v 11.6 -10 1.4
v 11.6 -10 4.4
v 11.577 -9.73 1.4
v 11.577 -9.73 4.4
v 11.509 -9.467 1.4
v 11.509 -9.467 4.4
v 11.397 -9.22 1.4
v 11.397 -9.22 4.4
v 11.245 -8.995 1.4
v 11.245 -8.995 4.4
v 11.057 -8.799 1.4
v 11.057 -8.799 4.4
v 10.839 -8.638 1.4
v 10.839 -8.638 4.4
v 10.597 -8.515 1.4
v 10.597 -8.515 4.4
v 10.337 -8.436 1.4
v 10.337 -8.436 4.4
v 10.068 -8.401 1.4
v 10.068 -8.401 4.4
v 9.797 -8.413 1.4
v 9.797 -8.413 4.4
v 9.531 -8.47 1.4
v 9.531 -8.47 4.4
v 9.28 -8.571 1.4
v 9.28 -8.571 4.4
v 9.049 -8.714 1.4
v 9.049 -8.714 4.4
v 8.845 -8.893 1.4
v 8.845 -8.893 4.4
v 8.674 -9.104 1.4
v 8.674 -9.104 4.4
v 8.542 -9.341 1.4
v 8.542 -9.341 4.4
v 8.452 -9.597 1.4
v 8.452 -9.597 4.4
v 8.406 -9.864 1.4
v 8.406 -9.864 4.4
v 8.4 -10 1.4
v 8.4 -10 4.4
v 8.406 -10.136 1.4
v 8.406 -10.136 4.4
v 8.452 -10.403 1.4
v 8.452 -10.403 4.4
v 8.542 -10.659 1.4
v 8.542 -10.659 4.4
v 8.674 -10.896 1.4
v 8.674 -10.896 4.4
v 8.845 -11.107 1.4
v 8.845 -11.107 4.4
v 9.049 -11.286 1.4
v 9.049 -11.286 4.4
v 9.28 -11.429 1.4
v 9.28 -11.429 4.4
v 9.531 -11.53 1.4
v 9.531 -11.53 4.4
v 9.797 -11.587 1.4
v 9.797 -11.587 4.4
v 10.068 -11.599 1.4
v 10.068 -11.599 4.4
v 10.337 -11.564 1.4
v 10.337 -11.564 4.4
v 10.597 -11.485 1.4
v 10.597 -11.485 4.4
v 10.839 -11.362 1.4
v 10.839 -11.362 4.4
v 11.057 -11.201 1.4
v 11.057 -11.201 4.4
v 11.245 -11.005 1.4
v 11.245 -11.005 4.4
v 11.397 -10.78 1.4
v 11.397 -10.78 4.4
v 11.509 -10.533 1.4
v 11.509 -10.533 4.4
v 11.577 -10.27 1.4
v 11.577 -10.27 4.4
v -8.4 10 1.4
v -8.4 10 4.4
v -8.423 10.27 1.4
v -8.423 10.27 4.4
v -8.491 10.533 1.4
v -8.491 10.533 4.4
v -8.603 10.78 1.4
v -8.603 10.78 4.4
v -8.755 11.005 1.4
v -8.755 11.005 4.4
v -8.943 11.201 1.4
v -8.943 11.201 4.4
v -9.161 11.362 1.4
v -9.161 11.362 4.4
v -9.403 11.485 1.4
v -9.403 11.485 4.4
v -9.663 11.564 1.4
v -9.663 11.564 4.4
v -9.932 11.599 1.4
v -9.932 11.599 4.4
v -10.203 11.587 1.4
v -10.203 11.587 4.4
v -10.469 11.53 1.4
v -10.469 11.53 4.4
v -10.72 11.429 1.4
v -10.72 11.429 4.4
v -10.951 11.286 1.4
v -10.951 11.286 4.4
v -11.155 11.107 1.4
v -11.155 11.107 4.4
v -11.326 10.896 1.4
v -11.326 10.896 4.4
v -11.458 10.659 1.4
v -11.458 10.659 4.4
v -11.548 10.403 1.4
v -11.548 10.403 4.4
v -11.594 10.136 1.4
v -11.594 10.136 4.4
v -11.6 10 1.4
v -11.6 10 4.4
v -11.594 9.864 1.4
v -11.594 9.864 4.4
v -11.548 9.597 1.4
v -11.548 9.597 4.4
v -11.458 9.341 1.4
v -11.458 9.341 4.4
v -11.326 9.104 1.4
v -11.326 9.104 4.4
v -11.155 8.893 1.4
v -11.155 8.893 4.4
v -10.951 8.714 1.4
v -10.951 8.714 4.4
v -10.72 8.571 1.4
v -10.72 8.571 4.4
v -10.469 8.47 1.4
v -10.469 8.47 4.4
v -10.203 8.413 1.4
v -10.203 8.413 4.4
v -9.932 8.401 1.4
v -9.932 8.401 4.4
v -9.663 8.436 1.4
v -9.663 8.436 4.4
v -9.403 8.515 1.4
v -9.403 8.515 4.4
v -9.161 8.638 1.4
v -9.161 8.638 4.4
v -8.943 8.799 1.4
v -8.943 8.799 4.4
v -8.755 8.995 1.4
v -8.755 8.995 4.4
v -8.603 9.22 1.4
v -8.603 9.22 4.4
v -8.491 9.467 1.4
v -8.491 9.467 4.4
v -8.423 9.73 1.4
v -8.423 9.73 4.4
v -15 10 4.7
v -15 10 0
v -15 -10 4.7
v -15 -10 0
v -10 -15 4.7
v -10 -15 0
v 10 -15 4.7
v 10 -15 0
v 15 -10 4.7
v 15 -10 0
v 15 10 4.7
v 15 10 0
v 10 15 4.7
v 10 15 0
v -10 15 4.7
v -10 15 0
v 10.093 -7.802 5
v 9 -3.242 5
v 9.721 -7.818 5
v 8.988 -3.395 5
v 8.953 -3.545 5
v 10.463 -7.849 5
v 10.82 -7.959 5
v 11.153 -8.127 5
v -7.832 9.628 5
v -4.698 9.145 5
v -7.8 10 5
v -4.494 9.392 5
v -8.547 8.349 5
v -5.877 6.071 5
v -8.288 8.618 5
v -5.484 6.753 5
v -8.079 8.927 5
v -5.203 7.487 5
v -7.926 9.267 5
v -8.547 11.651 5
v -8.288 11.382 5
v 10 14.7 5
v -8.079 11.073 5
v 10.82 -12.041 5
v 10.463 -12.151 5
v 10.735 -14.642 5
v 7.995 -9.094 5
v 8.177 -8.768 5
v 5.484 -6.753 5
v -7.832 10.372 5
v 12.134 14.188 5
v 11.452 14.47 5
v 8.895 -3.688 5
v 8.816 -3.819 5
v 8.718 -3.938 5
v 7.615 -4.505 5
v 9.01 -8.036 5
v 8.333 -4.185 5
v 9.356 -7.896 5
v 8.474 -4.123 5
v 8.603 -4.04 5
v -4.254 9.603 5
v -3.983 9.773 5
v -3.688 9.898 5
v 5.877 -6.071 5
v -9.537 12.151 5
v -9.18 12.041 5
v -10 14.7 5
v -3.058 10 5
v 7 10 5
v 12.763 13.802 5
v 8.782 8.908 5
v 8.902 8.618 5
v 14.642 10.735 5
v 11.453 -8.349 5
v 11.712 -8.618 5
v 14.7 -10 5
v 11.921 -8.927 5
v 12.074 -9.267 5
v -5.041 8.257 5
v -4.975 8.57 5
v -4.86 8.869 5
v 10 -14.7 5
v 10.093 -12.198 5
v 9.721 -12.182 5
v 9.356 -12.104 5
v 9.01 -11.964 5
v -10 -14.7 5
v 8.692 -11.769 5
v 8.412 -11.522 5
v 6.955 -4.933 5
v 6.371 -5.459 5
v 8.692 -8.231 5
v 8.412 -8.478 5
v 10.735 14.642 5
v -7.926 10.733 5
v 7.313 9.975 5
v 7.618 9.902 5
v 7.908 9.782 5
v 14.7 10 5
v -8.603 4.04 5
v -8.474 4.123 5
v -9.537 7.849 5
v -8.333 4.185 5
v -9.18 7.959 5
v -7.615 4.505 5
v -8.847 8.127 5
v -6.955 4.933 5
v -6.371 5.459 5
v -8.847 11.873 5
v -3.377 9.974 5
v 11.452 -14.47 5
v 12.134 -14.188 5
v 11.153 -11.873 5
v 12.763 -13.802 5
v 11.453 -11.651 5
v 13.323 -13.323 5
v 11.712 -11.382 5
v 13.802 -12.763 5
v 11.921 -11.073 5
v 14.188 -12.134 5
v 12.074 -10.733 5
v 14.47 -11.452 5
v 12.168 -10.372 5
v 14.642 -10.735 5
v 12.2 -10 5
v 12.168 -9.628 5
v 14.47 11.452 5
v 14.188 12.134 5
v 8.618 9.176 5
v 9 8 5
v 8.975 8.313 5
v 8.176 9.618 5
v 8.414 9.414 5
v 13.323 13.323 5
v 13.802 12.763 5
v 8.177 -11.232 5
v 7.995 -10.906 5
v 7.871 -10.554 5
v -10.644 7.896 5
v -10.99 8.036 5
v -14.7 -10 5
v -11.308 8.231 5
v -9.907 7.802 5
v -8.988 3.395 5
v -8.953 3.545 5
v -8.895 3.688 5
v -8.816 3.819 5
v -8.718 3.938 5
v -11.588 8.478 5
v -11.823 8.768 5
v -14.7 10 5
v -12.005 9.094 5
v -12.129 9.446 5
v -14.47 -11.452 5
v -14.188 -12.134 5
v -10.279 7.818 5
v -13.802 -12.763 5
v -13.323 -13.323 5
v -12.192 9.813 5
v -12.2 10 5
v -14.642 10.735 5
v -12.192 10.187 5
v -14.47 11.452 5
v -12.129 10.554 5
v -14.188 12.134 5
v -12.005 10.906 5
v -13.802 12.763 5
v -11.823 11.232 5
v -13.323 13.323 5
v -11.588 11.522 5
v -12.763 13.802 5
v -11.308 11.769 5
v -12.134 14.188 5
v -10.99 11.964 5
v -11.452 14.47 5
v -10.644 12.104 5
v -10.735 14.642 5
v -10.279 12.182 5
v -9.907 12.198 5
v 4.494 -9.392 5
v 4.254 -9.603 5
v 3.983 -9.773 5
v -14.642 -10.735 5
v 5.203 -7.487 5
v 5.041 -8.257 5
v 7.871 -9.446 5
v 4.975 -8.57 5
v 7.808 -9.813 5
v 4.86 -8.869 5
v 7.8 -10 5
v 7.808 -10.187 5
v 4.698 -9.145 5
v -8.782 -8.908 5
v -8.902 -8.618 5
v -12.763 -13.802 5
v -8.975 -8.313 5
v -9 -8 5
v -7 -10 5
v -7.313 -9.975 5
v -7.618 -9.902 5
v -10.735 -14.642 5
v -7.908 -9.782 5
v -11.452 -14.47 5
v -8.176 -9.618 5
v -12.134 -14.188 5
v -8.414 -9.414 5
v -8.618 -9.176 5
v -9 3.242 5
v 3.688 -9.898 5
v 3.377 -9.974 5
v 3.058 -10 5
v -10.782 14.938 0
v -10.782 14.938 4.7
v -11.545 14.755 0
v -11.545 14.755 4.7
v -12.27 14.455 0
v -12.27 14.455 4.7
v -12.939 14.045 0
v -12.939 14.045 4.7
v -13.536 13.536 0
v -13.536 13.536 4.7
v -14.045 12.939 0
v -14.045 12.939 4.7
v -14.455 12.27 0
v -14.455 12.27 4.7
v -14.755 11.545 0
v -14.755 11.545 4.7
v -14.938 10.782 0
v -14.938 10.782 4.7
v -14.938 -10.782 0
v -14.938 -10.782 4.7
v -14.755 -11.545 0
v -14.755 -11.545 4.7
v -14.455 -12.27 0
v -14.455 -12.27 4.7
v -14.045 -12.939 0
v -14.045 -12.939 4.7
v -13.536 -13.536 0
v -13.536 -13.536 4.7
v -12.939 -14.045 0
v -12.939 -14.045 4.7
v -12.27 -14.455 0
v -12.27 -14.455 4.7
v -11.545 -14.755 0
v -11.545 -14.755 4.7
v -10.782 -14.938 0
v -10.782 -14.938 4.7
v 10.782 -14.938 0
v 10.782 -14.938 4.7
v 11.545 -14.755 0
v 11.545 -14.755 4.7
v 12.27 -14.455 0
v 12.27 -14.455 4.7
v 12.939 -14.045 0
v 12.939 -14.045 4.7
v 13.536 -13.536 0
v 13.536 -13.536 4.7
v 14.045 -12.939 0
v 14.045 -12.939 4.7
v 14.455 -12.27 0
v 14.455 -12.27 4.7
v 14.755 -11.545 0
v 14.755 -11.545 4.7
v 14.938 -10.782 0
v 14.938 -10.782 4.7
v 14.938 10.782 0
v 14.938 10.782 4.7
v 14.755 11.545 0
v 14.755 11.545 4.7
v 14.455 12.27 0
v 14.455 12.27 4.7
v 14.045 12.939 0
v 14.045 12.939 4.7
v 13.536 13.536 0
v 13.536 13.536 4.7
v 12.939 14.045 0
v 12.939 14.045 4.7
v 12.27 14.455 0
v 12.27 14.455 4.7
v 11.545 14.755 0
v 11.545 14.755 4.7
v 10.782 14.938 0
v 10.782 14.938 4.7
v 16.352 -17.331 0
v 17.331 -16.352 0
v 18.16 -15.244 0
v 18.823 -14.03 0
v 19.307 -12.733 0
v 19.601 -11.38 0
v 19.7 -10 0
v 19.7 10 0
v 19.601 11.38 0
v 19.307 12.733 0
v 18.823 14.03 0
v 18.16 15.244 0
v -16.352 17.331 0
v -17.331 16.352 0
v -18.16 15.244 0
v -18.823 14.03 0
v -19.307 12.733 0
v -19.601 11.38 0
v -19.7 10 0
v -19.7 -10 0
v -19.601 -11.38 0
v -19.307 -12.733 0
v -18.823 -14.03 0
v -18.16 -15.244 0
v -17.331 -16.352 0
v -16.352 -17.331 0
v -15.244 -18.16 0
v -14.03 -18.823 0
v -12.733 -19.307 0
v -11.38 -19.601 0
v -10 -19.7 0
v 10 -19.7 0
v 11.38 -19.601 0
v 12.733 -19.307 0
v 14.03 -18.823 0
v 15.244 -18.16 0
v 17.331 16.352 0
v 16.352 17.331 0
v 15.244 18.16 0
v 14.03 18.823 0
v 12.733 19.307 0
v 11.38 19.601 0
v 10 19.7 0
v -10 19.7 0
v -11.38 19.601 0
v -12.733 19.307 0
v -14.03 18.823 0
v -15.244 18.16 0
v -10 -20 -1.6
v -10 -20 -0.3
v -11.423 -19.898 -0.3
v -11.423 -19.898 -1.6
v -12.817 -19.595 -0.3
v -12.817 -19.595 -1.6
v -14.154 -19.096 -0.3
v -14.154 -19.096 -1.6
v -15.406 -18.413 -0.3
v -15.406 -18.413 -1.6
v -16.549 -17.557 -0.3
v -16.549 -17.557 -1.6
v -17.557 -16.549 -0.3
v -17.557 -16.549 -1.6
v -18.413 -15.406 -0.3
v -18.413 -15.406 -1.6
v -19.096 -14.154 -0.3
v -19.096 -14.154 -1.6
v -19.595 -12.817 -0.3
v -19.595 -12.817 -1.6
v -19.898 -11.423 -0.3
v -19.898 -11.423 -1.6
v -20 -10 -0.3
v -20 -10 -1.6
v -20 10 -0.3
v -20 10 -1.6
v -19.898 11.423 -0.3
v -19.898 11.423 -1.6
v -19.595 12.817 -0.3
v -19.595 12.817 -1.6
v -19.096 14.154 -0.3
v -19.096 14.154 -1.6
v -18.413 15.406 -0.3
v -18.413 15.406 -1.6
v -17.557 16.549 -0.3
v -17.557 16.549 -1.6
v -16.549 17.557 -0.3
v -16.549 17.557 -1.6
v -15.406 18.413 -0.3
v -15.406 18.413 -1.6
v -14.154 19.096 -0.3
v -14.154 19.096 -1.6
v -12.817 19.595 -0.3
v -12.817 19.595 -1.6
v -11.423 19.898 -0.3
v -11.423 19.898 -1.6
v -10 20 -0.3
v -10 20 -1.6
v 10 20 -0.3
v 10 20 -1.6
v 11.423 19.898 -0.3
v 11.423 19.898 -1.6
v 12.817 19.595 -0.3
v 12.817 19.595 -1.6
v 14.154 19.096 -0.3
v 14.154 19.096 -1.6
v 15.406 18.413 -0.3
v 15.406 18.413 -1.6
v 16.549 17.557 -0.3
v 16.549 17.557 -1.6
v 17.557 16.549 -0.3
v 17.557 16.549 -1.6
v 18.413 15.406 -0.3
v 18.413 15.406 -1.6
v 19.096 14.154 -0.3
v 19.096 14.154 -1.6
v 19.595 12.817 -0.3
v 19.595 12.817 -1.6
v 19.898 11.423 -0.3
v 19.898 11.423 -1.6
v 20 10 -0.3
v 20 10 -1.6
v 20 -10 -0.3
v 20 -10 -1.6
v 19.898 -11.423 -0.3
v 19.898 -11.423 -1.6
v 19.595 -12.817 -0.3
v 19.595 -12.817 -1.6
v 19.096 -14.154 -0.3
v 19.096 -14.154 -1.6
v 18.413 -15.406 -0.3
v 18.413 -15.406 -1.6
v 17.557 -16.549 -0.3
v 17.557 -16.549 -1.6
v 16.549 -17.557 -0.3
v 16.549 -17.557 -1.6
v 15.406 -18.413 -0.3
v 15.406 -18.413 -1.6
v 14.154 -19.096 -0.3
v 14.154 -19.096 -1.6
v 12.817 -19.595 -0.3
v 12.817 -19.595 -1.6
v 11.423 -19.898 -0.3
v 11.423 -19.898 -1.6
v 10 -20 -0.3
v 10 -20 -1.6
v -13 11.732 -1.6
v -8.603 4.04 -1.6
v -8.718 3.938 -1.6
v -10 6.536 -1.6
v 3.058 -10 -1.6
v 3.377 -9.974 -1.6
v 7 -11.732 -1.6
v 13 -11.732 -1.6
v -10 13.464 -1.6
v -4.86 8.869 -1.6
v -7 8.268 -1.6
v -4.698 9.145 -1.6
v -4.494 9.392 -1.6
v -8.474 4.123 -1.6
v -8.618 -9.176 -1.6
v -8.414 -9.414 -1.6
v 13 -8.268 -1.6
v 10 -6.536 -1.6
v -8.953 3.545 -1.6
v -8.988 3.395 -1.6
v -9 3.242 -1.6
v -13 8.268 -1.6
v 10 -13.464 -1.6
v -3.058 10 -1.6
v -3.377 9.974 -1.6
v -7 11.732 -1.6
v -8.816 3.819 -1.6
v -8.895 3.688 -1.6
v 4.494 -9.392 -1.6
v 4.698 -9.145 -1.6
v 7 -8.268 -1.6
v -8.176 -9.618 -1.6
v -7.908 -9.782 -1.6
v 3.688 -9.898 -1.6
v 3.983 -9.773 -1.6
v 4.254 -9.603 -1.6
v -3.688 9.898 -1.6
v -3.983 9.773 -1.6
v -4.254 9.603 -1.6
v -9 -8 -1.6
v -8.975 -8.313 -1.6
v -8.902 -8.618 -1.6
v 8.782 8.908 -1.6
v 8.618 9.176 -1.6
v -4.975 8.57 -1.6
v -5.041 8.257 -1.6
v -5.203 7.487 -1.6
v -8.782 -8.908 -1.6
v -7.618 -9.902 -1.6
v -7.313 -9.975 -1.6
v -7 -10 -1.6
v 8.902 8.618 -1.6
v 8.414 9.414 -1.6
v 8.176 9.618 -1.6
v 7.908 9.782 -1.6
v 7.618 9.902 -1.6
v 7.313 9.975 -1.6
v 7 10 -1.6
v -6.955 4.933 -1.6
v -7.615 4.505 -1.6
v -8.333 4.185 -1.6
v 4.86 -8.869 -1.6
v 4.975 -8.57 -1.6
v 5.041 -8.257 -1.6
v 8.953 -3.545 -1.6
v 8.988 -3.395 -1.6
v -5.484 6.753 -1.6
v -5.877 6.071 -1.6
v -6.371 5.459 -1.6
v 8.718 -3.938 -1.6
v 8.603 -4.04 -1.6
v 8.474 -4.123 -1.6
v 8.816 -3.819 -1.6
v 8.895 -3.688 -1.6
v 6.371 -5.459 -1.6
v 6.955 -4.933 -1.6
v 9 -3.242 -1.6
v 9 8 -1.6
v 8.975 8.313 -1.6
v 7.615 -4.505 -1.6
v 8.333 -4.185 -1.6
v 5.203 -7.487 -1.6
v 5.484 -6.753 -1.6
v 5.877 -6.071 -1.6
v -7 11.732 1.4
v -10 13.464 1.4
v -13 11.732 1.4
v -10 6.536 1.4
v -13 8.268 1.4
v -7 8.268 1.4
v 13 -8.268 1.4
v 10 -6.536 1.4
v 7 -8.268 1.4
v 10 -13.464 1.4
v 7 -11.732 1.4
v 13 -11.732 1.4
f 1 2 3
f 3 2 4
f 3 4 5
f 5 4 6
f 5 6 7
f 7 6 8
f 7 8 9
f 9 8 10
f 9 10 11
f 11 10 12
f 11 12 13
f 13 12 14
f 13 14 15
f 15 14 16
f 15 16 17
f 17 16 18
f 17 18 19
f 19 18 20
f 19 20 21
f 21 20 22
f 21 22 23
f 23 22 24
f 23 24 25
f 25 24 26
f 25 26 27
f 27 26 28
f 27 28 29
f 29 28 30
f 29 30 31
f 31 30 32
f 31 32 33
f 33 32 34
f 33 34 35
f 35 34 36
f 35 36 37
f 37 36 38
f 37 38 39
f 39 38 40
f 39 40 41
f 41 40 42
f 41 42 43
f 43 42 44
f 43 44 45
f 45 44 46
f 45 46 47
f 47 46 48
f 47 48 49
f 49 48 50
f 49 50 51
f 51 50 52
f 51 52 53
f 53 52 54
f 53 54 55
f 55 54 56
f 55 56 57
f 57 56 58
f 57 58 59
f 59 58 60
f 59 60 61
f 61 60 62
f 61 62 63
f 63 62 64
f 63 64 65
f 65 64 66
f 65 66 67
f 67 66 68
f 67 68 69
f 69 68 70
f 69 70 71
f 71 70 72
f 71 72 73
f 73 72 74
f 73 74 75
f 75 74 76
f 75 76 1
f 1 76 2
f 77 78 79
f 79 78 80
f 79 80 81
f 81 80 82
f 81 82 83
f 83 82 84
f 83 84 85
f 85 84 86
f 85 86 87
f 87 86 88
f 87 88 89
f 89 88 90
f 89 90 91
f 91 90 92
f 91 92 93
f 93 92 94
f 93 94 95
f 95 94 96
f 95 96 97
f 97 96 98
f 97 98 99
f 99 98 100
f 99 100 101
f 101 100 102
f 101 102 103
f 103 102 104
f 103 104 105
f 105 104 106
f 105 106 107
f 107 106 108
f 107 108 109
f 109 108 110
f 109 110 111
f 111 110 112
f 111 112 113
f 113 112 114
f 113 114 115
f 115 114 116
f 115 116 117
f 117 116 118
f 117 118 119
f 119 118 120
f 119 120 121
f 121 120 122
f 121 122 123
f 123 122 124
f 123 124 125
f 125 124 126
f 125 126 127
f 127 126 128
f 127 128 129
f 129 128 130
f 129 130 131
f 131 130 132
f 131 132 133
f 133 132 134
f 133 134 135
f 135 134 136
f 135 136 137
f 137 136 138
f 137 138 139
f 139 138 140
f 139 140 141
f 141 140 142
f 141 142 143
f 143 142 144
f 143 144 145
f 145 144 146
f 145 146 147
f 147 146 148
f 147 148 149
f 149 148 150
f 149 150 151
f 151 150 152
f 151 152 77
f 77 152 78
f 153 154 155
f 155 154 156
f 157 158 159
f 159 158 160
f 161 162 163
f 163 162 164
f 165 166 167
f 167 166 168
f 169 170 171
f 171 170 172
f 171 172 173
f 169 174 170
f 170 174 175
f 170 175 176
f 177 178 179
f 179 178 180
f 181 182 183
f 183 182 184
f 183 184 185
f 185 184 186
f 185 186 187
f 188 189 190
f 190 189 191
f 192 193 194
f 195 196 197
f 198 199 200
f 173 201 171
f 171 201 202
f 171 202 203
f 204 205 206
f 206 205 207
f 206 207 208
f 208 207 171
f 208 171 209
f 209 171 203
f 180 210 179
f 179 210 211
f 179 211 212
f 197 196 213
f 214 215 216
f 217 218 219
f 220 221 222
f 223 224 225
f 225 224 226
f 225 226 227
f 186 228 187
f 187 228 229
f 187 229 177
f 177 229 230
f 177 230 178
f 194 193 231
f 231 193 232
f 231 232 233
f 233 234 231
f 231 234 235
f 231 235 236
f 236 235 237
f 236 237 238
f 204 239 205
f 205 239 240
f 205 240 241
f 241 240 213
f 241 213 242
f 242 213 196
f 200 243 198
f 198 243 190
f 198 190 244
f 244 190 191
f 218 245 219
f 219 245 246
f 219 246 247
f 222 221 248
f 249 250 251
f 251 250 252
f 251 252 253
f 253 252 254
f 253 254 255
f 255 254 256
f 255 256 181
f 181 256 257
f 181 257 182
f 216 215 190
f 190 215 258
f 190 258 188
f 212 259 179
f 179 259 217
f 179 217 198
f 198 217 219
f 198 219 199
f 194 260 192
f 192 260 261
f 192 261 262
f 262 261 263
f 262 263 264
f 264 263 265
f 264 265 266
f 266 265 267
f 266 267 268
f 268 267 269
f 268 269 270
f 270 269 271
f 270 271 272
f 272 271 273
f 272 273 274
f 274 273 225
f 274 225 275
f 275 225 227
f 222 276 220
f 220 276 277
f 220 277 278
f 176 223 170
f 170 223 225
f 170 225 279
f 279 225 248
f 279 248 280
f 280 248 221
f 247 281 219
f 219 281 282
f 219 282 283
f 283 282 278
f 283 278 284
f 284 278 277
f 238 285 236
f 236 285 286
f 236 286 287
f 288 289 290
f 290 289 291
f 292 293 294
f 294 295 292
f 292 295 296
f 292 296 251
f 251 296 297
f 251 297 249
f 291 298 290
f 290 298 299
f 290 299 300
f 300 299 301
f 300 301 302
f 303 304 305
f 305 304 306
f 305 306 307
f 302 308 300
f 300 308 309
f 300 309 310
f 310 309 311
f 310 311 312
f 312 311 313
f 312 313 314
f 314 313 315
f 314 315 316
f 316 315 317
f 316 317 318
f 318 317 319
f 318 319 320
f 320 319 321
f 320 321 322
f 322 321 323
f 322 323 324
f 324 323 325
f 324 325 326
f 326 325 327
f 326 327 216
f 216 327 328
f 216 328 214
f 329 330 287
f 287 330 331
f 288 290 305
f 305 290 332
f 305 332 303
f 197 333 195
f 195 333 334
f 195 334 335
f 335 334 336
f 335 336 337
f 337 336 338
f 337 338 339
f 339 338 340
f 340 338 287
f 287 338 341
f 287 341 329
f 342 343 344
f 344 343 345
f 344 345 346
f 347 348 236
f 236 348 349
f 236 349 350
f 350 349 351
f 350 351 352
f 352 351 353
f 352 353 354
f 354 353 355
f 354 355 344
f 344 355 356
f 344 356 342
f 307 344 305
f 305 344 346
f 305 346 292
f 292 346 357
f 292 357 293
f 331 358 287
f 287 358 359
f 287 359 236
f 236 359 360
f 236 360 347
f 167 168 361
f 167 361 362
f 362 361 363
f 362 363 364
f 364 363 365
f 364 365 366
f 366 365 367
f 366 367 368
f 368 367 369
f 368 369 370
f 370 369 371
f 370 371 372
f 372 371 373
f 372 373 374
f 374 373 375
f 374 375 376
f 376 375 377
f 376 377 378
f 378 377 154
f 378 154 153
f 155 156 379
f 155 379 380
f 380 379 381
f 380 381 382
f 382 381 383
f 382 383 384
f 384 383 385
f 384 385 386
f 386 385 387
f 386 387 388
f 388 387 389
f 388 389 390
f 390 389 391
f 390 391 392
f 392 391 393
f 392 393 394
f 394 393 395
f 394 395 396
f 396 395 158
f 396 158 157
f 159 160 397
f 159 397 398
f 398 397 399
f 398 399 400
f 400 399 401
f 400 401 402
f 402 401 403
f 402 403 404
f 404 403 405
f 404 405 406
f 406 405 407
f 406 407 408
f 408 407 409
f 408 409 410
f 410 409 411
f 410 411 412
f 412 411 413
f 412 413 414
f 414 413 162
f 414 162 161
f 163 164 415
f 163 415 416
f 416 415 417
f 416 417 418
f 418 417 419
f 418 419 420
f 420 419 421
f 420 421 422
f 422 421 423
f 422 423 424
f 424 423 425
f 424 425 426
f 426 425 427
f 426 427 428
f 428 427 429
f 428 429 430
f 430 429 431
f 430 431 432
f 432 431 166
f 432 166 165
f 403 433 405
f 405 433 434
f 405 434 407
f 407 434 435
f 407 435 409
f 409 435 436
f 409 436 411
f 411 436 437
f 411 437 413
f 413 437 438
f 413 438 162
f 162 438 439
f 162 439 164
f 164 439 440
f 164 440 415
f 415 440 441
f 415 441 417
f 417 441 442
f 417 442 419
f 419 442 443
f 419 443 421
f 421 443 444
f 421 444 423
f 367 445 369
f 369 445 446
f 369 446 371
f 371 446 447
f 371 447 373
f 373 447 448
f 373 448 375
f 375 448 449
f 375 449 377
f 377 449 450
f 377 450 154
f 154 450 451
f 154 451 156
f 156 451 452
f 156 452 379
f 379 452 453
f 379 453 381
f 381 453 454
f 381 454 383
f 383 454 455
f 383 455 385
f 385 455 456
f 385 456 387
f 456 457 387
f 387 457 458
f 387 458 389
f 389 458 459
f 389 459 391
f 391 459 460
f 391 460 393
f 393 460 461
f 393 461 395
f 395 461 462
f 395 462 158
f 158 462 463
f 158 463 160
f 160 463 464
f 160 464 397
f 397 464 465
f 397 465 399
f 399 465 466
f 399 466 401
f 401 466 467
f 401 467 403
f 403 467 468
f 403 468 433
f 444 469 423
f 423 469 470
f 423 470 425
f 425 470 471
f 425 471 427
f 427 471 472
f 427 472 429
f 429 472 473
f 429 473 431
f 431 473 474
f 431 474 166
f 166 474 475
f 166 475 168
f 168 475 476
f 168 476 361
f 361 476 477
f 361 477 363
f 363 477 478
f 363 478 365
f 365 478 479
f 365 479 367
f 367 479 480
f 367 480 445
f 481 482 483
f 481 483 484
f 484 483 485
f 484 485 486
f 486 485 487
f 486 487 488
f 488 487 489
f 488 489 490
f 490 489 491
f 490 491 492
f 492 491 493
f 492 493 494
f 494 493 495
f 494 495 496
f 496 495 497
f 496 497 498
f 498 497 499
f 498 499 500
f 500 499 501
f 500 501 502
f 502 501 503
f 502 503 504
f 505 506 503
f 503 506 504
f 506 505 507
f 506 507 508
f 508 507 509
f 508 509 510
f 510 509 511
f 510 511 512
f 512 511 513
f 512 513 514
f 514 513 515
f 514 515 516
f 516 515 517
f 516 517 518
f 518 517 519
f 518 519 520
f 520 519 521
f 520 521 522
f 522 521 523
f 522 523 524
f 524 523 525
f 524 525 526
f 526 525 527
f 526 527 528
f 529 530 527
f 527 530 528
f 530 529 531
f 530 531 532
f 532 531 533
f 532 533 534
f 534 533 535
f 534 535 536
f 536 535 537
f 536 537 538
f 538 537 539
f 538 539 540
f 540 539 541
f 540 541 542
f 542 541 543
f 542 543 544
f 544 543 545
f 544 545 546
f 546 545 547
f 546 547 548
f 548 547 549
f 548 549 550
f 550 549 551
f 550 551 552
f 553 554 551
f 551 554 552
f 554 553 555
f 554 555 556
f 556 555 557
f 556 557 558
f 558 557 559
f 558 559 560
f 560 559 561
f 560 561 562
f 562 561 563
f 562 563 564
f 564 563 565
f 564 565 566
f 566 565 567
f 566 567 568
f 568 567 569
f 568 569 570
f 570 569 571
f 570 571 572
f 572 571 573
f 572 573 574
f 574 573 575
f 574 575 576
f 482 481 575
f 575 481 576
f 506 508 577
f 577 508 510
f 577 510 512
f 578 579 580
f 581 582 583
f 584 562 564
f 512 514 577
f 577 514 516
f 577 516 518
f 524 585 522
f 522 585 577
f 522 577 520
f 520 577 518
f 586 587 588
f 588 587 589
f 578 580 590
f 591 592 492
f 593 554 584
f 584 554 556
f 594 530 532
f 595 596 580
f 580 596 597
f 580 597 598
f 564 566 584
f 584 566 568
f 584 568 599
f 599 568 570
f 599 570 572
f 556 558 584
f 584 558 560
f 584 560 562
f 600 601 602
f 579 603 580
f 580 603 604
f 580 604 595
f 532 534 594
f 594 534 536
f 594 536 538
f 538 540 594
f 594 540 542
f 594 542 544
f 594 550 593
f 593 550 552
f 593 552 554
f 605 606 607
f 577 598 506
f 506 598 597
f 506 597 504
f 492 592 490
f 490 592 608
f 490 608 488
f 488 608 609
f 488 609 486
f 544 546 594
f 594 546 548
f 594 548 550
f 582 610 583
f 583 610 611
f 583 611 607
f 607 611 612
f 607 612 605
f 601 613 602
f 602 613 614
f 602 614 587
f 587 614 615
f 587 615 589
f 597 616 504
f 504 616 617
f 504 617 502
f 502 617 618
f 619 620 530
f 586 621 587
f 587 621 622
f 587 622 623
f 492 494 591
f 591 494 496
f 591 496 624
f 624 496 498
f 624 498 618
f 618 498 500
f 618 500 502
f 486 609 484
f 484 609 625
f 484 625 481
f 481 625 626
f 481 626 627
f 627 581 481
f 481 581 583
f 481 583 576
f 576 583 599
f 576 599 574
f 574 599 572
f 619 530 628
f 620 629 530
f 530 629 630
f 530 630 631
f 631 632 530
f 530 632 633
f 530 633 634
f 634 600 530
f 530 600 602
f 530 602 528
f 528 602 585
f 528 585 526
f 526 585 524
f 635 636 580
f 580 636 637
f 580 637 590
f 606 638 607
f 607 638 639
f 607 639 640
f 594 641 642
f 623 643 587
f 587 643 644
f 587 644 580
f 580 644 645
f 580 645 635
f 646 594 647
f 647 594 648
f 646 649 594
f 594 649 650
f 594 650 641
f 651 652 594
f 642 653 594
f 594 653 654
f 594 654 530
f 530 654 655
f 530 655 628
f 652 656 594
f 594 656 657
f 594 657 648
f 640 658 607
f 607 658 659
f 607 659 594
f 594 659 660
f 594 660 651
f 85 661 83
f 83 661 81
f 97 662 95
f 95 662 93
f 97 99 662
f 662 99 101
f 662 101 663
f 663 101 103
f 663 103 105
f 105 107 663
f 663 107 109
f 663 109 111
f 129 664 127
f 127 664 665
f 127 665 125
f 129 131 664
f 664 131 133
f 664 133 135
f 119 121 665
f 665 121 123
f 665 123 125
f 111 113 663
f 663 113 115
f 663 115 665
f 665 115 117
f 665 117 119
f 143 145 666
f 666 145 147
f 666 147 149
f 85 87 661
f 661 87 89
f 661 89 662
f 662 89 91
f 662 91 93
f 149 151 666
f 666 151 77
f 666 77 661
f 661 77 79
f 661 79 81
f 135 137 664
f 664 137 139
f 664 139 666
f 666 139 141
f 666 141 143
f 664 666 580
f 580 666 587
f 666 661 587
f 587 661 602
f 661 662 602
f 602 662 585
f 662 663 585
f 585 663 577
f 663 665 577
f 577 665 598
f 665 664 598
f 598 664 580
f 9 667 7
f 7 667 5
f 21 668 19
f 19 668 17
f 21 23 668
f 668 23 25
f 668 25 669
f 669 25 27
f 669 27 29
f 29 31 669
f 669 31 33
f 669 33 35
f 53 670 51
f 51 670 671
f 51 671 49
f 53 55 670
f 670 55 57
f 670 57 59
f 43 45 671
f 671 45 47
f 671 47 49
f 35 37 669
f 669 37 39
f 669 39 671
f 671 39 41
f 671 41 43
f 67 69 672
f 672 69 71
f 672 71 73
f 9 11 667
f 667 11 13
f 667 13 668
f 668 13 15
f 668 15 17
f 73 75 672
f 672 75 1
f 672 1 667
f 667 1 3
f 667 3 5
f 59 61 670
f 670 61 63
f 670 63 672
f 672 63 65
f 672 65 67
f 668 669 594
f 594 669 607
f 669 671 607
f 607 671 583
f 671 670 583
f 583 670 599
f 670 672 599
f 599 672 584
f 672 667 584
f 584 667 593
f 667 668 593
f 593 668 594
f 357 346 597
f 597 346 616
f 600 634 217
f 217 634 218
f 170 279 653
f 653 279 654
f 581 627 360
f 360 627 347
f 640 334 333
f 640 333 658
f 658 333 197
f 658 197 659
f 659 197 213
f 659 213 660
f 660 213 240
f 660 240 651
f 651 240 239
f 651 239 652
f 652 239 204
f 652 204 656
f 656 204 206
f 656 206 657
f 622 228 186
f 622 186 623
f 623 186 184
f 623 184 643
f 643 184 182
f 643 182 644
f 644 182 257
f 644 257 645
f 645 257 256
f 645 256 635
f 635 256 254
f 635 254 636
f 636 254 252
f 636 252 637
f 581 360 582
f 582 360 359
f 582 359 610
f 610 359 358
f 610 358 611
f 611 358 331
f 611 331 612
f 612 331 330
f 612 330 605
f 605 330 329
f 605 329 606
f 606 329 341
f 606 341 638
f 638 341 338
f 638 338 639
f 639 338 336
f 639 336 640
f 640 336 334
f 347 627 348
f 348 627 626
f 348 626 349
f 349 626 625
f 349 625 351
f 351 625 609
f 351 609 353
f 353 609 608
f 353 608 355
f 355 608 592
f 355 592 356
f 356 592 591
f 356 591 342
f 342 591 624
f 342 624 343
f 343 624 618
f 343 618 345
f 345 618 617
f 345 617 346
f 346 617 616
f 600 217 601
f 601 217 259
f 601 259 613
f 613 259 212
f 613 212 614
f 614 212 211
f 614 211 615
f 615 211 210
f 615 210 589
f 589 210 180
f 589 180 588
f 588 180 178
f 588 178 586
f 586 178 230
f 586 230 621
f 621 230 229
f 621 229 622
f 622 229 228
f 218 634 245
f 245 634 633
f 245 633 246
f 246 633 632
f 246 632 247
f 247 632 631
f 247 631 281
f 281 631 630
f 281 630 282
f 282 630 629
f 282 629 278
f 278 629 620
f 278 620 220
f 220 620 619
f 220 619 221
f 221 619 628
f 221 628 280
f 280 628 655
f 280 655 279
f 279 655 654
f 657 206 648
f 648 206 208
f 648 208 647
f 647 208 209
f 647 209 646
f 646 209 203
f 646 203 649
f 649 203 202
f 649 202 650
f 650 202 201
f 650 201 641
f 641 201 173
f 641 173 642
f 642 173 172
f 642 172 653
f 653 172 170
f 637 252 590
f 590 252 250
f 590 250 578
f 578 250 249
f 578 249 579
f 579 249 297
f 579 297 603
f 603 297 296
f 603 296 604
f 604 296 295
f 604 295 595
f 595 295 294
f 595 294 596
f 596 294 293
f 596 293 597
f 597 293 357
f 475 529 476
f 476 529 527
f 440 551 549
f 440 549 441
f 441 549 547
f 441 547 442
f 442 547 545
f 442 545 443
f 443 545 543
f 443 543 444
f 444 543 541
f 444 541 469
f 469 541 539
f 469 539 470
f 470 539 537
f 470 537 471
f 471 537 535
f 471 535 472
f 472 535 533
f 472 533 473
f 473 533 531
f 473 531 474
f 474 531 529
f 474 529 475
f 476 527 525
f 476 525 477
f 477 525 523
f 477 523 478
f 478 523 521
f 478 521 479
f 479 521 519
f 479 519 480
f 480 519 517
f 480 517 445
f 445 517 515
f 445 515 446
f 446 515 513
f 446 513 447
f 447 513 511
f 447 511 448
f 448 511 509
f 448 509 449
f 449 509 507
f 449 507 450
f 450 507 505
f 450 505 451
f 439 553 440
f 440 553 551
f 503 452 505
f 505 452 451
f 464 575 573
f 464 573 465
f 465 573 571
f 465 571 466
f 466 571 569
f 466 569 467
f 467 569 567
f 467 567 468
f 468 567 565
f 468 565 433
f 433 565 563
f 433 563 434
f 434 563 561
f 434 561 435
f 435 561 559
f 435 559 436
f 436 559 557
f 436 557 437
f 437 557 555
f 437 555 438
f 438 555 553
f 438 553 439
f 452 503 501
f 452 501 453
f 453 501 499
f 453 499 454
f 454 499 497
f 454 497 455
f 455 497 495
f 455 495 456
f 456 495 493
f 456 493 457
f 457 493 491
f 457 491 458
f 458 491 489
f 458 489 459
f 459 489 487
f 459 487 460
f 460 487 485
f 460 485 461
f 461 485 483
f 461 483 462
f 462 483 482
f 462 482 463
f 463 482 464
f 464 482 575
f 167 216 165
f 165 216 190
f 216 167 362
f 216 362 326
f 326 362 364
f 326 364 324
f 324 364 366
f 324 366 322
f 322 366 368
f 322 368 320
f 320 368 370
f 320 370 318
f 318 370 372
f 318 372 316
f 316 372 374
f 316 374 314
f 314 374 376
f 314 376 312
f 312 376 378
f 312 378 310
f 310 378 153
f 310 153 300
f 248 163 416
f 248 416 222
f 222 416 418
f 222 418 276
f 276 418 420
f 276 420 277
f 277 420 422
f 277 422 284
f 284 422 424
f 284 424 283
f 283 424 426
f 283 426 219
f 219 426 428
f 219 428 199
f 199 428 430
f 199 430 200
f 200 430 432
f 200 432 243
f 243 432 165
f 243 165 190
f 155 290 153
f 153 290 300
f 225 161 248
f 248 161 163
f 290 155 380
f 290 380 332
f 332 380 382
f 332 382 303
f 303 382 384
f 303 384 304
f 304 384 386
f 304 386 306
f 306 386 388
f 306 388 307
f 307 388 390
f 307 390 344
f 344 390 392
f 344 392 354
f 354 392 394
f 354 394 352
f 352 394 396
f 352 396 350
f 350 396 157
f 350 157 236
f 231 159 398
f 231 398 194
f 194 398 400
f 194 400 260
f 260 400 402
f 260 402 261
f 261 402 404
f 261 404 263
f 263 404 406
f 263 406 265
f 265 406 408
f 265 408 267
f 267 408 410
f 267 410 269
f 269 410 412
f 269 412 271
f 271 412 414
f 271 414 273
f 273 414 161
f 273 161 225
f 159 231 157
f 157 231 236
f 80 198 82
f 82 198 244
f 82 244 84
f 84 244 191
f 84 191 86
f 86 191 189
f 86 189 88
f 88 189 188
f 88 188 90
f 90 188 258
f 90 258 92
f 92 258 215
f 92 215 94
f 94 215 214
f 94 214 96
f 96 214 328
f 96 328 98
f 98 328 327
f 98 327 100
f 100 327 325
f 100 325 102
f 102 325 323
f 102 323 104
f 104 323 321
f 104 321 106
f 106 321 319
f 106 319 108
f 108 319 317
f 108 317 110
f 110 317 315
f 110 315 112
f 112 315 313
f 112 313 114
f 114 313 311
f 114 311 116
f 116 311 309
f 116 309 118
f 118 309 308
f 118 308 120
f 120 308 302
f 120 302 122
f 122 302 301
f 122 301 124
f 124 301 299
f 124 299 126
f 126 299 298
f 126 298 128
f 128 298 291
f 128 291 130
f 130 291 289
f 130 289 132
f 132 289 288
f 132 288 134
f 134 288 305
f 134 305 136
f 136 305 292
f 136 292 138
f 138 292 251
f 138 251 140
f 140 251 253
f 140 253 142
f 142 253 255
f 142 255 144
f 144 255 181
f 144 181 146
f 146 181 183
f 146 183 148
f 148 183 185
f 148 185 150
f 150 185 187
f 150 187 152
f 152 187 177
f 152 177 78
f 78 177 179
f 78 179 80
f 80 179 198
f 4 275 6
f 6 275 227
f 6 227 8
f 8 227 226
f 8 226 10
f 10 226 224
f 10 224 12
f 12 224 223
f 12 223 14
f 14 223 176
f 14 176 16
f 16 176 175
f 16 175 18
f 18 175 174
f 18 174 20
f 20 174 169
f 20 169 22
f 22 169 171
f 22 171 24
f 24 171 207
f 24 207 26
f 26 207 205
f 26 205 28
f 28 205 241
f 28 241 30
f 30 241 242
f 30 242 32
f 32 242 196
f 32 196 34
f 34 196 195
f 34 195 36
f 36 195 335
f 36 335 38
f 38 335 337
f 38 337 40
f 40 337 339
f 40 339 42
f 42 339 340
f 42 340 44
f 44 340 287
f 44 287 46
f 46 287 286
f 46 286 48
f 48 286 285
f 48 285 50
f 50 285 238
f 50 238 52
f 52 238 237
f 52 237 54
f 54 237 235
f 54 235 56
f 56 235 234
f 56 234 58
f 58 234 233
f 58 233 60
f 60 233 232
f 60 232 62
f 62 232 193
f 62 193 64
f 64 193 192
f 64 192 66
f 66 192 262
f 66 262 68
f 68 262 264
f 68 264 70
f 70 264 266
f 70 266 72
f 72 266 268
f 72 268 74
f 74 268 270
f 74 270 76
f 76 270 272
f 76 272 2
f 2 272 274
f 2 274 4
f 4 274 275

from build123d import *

# Parameters (mm, degrees)
SKIZZE1_W          = 30
SKIZZE1_H          = 30
GRUNDK_RPER_DEPTH  = 5
VERRUNDUNG1_R      = 5
ABSATZ_DEPTH       = 1.6
SKIZZE3_R          = 1.6
M3_BOHRUNGEN_DEPTH = 30.044104393
M3_SCHSKANT_DEPTH  = 3
DURCHBRUCH_DEPTH   = 30.044104393
VERRUNDUNG2_R      = 5
VERRUNDUNG3_R      = 2
VERRUNDUNG4_R      = 1
FASE1_SIZE         = 0.3
FASE2_SIZE         = 0.6


with BuildPart() as part:
    # Skizze1 → Grundkörper (new body)
    with BuildSketch(Plane.XY):
        Rectangle(SKIZZE1_W, SKIZZE1_H)
    extrude(amount=GRUNDK_RPER_DEPTH)

    # Verrundung1
    verrundung1_edges = [part.edges().sort_by_distance(p)[0] for p in [
        (-15, 15, 2.5),
        (15, 15, 2.5),
        (15, -15, 2.5),
        (-15, -15, 2.5),
    ]]
    fillet(verrundung1_edges, radius=VERRUNDUNG1_R)

    # Skizze2 → Absatz (add)
    with BuildSketch(Plane(origin=(0, 0, 0), x_dir=(-1, 0, 0), z_dir=(0, 0, -1))):
        with BuildLine():
            Line((20, -10), (20, 10))
            ThreePointArc((20, 10), (17.071067812, 17.071067812), (10, 20))
            Line((10, 20), (-10, 20))
            ThreePointArc((-10, 20), (-17.071067812, 17.071067812), (-20, 10))
            Line((-20, 10), (-20, -10))
            ThreePointArc((-20, -10), (-17.071067812, -17.071067812), (-10, -20))
            Line((-10, -20), (10, -20))
            ThreePointArc((10, -20), (17.071067812, -17.071067812), (20, -10))
        make_face()
    extrude(amount=ABSATZ_DEPTH)

    # Skizze3 → M3 Bohrungen (cut, through all)
    with BuildSketch(Plane.XY.offset(5)):
        with Locations((-10, 10)):
            Circle(SKIZZE3_R)
        with Locations((10, -10)):
            Circle(SKIZZE3_R)
    extrude(amount=-M3_BOHRUNGEN_DEPTH, mode=Mode.SUBTRACT)

    # Skizze4 → M3 Schskant (cut)
    with BuildSketch(Plane(origin=(0, 0, -1.6), x_dir=(-1, 0, 0), z_dir=(0, 0, -1))):
        Polygon((10, 6.535898385), (13, 8.267949192), (13, 11.732050808), (10, 13.464101615), (7, 11.732050808), (7, 8.267949192), align=None)
        Polygon((-10, -6.535898385), (-13, -8.267949192), (-13, -11.732050808), (-10, -13.464101615), (-7, -11.732050808), (-7, -8.267949192), align=None)
    extrude(amount=-M3_SCHSKANT_DEPTH, mode=Mode.SUBTRACT)

    # Skizze5 → Durchbruch (cut, through all)
    with BuildSketch(Plane.XY.offset(5)):
        Polygon((5, 10), (-5, 10), (-5, 4), (-9, 4), (-9, -10), (-5, -10), (5, -10), (5, -4), (9, -4), (9, 10), align=None)
    extrude(amount=-DURCHBRUCH_DEPTH, mode=Mode.SUBTRACT)

    # Verrundung2
    # the kernel refuses this fillet: 5 mm, written as the material it takes off along each edge
    with BuildSketch(Plane(origin=(5, -4, 17.247448714), x_dir=(1.0, -1.5394352459447556e-12, 0), z_dir=(0, 0, -1)), Plane(origin=(-5, 4, 17.247448714), x_dir=(-1.0, 1.5605294834126232e-12, 0), z_dir=(0, 0, -1))) as verrundung2_piece_1:
        with BuildLine():
            CenterArc((5, 4.898979486), VERRUNDUNG2_R, 180, 78.463040967)
            Line((0, 4.898979486), (-0.1, 4.898979486))
            Line((-0.1, 4.898979486), (-0.1, 0))
            Line((-0.1, 0), (0, -0.1))
            ThreePointArc((0, -0.1), (2, -0.1), (3.98, -0.09797959))
            Line((3.98, -0.09797959), (4, 0))
        make_face()
    extrude(amount=31.094897428, mode=Mode.SUBTRACT)

    # Verrundung3
    verrundung3_edges = [part.edges().sort_by_distance(p)[0] for p in [
        (5, -10, 1.7),
        (-9, -10, 1.7),
        (-5, 10, 1.7),
        (9, 10, 1.7),
    ]]
    fillet(verrundung3_edges, radius=VERRUNDUNG3_R)

    # Verrundung4
    verrundung4_edges = [part.edges().sort_by_distance(p)[0] for p in [
        (-9, 4, 1.7),
        (9, -4, 1.7),
    ]]
    fillet(verrundung4_edges, radius=VERRUNDUNG4_R)

    # Fase1
    fase1_edges = [part.edges().sort_by_distance(p)[0] for p in [
        (-15, 0, 5),
        (0, 15, 5),
        (0, -15, 5),
        (15, 0, 5),
        (13.535533906, 13.535533906, 5),
        (13.535533906, -13.535533906, 5),
        (-13.535533906, -13.535533906, 5),
        (-13.535533906, 13.535533906, 5),
        (-17.071067812, -17.071067812, 0),
        (-20, 0, 0),
        (-17.071067812, 17.071067812, 0),
        (0, 20, 0),
        (17.071067812, 17.071067812, 0),
        (20, 0, 0),
        (17.071067812, -17.071067812, 0),
        (0, -20, 0),
    ]]
    chamfer(fase1_edges, length=FASE1_SIZE)

    # Fase2
    fase2_edges = [part.edges().sort_by_distance(p)[0] for p in [
        (-11.6, 10, 5),
        (8.4, -10, 5),
    ]]
    chamfer(fase2_edges, length=FASE2_SIZE)


solid = part.part
